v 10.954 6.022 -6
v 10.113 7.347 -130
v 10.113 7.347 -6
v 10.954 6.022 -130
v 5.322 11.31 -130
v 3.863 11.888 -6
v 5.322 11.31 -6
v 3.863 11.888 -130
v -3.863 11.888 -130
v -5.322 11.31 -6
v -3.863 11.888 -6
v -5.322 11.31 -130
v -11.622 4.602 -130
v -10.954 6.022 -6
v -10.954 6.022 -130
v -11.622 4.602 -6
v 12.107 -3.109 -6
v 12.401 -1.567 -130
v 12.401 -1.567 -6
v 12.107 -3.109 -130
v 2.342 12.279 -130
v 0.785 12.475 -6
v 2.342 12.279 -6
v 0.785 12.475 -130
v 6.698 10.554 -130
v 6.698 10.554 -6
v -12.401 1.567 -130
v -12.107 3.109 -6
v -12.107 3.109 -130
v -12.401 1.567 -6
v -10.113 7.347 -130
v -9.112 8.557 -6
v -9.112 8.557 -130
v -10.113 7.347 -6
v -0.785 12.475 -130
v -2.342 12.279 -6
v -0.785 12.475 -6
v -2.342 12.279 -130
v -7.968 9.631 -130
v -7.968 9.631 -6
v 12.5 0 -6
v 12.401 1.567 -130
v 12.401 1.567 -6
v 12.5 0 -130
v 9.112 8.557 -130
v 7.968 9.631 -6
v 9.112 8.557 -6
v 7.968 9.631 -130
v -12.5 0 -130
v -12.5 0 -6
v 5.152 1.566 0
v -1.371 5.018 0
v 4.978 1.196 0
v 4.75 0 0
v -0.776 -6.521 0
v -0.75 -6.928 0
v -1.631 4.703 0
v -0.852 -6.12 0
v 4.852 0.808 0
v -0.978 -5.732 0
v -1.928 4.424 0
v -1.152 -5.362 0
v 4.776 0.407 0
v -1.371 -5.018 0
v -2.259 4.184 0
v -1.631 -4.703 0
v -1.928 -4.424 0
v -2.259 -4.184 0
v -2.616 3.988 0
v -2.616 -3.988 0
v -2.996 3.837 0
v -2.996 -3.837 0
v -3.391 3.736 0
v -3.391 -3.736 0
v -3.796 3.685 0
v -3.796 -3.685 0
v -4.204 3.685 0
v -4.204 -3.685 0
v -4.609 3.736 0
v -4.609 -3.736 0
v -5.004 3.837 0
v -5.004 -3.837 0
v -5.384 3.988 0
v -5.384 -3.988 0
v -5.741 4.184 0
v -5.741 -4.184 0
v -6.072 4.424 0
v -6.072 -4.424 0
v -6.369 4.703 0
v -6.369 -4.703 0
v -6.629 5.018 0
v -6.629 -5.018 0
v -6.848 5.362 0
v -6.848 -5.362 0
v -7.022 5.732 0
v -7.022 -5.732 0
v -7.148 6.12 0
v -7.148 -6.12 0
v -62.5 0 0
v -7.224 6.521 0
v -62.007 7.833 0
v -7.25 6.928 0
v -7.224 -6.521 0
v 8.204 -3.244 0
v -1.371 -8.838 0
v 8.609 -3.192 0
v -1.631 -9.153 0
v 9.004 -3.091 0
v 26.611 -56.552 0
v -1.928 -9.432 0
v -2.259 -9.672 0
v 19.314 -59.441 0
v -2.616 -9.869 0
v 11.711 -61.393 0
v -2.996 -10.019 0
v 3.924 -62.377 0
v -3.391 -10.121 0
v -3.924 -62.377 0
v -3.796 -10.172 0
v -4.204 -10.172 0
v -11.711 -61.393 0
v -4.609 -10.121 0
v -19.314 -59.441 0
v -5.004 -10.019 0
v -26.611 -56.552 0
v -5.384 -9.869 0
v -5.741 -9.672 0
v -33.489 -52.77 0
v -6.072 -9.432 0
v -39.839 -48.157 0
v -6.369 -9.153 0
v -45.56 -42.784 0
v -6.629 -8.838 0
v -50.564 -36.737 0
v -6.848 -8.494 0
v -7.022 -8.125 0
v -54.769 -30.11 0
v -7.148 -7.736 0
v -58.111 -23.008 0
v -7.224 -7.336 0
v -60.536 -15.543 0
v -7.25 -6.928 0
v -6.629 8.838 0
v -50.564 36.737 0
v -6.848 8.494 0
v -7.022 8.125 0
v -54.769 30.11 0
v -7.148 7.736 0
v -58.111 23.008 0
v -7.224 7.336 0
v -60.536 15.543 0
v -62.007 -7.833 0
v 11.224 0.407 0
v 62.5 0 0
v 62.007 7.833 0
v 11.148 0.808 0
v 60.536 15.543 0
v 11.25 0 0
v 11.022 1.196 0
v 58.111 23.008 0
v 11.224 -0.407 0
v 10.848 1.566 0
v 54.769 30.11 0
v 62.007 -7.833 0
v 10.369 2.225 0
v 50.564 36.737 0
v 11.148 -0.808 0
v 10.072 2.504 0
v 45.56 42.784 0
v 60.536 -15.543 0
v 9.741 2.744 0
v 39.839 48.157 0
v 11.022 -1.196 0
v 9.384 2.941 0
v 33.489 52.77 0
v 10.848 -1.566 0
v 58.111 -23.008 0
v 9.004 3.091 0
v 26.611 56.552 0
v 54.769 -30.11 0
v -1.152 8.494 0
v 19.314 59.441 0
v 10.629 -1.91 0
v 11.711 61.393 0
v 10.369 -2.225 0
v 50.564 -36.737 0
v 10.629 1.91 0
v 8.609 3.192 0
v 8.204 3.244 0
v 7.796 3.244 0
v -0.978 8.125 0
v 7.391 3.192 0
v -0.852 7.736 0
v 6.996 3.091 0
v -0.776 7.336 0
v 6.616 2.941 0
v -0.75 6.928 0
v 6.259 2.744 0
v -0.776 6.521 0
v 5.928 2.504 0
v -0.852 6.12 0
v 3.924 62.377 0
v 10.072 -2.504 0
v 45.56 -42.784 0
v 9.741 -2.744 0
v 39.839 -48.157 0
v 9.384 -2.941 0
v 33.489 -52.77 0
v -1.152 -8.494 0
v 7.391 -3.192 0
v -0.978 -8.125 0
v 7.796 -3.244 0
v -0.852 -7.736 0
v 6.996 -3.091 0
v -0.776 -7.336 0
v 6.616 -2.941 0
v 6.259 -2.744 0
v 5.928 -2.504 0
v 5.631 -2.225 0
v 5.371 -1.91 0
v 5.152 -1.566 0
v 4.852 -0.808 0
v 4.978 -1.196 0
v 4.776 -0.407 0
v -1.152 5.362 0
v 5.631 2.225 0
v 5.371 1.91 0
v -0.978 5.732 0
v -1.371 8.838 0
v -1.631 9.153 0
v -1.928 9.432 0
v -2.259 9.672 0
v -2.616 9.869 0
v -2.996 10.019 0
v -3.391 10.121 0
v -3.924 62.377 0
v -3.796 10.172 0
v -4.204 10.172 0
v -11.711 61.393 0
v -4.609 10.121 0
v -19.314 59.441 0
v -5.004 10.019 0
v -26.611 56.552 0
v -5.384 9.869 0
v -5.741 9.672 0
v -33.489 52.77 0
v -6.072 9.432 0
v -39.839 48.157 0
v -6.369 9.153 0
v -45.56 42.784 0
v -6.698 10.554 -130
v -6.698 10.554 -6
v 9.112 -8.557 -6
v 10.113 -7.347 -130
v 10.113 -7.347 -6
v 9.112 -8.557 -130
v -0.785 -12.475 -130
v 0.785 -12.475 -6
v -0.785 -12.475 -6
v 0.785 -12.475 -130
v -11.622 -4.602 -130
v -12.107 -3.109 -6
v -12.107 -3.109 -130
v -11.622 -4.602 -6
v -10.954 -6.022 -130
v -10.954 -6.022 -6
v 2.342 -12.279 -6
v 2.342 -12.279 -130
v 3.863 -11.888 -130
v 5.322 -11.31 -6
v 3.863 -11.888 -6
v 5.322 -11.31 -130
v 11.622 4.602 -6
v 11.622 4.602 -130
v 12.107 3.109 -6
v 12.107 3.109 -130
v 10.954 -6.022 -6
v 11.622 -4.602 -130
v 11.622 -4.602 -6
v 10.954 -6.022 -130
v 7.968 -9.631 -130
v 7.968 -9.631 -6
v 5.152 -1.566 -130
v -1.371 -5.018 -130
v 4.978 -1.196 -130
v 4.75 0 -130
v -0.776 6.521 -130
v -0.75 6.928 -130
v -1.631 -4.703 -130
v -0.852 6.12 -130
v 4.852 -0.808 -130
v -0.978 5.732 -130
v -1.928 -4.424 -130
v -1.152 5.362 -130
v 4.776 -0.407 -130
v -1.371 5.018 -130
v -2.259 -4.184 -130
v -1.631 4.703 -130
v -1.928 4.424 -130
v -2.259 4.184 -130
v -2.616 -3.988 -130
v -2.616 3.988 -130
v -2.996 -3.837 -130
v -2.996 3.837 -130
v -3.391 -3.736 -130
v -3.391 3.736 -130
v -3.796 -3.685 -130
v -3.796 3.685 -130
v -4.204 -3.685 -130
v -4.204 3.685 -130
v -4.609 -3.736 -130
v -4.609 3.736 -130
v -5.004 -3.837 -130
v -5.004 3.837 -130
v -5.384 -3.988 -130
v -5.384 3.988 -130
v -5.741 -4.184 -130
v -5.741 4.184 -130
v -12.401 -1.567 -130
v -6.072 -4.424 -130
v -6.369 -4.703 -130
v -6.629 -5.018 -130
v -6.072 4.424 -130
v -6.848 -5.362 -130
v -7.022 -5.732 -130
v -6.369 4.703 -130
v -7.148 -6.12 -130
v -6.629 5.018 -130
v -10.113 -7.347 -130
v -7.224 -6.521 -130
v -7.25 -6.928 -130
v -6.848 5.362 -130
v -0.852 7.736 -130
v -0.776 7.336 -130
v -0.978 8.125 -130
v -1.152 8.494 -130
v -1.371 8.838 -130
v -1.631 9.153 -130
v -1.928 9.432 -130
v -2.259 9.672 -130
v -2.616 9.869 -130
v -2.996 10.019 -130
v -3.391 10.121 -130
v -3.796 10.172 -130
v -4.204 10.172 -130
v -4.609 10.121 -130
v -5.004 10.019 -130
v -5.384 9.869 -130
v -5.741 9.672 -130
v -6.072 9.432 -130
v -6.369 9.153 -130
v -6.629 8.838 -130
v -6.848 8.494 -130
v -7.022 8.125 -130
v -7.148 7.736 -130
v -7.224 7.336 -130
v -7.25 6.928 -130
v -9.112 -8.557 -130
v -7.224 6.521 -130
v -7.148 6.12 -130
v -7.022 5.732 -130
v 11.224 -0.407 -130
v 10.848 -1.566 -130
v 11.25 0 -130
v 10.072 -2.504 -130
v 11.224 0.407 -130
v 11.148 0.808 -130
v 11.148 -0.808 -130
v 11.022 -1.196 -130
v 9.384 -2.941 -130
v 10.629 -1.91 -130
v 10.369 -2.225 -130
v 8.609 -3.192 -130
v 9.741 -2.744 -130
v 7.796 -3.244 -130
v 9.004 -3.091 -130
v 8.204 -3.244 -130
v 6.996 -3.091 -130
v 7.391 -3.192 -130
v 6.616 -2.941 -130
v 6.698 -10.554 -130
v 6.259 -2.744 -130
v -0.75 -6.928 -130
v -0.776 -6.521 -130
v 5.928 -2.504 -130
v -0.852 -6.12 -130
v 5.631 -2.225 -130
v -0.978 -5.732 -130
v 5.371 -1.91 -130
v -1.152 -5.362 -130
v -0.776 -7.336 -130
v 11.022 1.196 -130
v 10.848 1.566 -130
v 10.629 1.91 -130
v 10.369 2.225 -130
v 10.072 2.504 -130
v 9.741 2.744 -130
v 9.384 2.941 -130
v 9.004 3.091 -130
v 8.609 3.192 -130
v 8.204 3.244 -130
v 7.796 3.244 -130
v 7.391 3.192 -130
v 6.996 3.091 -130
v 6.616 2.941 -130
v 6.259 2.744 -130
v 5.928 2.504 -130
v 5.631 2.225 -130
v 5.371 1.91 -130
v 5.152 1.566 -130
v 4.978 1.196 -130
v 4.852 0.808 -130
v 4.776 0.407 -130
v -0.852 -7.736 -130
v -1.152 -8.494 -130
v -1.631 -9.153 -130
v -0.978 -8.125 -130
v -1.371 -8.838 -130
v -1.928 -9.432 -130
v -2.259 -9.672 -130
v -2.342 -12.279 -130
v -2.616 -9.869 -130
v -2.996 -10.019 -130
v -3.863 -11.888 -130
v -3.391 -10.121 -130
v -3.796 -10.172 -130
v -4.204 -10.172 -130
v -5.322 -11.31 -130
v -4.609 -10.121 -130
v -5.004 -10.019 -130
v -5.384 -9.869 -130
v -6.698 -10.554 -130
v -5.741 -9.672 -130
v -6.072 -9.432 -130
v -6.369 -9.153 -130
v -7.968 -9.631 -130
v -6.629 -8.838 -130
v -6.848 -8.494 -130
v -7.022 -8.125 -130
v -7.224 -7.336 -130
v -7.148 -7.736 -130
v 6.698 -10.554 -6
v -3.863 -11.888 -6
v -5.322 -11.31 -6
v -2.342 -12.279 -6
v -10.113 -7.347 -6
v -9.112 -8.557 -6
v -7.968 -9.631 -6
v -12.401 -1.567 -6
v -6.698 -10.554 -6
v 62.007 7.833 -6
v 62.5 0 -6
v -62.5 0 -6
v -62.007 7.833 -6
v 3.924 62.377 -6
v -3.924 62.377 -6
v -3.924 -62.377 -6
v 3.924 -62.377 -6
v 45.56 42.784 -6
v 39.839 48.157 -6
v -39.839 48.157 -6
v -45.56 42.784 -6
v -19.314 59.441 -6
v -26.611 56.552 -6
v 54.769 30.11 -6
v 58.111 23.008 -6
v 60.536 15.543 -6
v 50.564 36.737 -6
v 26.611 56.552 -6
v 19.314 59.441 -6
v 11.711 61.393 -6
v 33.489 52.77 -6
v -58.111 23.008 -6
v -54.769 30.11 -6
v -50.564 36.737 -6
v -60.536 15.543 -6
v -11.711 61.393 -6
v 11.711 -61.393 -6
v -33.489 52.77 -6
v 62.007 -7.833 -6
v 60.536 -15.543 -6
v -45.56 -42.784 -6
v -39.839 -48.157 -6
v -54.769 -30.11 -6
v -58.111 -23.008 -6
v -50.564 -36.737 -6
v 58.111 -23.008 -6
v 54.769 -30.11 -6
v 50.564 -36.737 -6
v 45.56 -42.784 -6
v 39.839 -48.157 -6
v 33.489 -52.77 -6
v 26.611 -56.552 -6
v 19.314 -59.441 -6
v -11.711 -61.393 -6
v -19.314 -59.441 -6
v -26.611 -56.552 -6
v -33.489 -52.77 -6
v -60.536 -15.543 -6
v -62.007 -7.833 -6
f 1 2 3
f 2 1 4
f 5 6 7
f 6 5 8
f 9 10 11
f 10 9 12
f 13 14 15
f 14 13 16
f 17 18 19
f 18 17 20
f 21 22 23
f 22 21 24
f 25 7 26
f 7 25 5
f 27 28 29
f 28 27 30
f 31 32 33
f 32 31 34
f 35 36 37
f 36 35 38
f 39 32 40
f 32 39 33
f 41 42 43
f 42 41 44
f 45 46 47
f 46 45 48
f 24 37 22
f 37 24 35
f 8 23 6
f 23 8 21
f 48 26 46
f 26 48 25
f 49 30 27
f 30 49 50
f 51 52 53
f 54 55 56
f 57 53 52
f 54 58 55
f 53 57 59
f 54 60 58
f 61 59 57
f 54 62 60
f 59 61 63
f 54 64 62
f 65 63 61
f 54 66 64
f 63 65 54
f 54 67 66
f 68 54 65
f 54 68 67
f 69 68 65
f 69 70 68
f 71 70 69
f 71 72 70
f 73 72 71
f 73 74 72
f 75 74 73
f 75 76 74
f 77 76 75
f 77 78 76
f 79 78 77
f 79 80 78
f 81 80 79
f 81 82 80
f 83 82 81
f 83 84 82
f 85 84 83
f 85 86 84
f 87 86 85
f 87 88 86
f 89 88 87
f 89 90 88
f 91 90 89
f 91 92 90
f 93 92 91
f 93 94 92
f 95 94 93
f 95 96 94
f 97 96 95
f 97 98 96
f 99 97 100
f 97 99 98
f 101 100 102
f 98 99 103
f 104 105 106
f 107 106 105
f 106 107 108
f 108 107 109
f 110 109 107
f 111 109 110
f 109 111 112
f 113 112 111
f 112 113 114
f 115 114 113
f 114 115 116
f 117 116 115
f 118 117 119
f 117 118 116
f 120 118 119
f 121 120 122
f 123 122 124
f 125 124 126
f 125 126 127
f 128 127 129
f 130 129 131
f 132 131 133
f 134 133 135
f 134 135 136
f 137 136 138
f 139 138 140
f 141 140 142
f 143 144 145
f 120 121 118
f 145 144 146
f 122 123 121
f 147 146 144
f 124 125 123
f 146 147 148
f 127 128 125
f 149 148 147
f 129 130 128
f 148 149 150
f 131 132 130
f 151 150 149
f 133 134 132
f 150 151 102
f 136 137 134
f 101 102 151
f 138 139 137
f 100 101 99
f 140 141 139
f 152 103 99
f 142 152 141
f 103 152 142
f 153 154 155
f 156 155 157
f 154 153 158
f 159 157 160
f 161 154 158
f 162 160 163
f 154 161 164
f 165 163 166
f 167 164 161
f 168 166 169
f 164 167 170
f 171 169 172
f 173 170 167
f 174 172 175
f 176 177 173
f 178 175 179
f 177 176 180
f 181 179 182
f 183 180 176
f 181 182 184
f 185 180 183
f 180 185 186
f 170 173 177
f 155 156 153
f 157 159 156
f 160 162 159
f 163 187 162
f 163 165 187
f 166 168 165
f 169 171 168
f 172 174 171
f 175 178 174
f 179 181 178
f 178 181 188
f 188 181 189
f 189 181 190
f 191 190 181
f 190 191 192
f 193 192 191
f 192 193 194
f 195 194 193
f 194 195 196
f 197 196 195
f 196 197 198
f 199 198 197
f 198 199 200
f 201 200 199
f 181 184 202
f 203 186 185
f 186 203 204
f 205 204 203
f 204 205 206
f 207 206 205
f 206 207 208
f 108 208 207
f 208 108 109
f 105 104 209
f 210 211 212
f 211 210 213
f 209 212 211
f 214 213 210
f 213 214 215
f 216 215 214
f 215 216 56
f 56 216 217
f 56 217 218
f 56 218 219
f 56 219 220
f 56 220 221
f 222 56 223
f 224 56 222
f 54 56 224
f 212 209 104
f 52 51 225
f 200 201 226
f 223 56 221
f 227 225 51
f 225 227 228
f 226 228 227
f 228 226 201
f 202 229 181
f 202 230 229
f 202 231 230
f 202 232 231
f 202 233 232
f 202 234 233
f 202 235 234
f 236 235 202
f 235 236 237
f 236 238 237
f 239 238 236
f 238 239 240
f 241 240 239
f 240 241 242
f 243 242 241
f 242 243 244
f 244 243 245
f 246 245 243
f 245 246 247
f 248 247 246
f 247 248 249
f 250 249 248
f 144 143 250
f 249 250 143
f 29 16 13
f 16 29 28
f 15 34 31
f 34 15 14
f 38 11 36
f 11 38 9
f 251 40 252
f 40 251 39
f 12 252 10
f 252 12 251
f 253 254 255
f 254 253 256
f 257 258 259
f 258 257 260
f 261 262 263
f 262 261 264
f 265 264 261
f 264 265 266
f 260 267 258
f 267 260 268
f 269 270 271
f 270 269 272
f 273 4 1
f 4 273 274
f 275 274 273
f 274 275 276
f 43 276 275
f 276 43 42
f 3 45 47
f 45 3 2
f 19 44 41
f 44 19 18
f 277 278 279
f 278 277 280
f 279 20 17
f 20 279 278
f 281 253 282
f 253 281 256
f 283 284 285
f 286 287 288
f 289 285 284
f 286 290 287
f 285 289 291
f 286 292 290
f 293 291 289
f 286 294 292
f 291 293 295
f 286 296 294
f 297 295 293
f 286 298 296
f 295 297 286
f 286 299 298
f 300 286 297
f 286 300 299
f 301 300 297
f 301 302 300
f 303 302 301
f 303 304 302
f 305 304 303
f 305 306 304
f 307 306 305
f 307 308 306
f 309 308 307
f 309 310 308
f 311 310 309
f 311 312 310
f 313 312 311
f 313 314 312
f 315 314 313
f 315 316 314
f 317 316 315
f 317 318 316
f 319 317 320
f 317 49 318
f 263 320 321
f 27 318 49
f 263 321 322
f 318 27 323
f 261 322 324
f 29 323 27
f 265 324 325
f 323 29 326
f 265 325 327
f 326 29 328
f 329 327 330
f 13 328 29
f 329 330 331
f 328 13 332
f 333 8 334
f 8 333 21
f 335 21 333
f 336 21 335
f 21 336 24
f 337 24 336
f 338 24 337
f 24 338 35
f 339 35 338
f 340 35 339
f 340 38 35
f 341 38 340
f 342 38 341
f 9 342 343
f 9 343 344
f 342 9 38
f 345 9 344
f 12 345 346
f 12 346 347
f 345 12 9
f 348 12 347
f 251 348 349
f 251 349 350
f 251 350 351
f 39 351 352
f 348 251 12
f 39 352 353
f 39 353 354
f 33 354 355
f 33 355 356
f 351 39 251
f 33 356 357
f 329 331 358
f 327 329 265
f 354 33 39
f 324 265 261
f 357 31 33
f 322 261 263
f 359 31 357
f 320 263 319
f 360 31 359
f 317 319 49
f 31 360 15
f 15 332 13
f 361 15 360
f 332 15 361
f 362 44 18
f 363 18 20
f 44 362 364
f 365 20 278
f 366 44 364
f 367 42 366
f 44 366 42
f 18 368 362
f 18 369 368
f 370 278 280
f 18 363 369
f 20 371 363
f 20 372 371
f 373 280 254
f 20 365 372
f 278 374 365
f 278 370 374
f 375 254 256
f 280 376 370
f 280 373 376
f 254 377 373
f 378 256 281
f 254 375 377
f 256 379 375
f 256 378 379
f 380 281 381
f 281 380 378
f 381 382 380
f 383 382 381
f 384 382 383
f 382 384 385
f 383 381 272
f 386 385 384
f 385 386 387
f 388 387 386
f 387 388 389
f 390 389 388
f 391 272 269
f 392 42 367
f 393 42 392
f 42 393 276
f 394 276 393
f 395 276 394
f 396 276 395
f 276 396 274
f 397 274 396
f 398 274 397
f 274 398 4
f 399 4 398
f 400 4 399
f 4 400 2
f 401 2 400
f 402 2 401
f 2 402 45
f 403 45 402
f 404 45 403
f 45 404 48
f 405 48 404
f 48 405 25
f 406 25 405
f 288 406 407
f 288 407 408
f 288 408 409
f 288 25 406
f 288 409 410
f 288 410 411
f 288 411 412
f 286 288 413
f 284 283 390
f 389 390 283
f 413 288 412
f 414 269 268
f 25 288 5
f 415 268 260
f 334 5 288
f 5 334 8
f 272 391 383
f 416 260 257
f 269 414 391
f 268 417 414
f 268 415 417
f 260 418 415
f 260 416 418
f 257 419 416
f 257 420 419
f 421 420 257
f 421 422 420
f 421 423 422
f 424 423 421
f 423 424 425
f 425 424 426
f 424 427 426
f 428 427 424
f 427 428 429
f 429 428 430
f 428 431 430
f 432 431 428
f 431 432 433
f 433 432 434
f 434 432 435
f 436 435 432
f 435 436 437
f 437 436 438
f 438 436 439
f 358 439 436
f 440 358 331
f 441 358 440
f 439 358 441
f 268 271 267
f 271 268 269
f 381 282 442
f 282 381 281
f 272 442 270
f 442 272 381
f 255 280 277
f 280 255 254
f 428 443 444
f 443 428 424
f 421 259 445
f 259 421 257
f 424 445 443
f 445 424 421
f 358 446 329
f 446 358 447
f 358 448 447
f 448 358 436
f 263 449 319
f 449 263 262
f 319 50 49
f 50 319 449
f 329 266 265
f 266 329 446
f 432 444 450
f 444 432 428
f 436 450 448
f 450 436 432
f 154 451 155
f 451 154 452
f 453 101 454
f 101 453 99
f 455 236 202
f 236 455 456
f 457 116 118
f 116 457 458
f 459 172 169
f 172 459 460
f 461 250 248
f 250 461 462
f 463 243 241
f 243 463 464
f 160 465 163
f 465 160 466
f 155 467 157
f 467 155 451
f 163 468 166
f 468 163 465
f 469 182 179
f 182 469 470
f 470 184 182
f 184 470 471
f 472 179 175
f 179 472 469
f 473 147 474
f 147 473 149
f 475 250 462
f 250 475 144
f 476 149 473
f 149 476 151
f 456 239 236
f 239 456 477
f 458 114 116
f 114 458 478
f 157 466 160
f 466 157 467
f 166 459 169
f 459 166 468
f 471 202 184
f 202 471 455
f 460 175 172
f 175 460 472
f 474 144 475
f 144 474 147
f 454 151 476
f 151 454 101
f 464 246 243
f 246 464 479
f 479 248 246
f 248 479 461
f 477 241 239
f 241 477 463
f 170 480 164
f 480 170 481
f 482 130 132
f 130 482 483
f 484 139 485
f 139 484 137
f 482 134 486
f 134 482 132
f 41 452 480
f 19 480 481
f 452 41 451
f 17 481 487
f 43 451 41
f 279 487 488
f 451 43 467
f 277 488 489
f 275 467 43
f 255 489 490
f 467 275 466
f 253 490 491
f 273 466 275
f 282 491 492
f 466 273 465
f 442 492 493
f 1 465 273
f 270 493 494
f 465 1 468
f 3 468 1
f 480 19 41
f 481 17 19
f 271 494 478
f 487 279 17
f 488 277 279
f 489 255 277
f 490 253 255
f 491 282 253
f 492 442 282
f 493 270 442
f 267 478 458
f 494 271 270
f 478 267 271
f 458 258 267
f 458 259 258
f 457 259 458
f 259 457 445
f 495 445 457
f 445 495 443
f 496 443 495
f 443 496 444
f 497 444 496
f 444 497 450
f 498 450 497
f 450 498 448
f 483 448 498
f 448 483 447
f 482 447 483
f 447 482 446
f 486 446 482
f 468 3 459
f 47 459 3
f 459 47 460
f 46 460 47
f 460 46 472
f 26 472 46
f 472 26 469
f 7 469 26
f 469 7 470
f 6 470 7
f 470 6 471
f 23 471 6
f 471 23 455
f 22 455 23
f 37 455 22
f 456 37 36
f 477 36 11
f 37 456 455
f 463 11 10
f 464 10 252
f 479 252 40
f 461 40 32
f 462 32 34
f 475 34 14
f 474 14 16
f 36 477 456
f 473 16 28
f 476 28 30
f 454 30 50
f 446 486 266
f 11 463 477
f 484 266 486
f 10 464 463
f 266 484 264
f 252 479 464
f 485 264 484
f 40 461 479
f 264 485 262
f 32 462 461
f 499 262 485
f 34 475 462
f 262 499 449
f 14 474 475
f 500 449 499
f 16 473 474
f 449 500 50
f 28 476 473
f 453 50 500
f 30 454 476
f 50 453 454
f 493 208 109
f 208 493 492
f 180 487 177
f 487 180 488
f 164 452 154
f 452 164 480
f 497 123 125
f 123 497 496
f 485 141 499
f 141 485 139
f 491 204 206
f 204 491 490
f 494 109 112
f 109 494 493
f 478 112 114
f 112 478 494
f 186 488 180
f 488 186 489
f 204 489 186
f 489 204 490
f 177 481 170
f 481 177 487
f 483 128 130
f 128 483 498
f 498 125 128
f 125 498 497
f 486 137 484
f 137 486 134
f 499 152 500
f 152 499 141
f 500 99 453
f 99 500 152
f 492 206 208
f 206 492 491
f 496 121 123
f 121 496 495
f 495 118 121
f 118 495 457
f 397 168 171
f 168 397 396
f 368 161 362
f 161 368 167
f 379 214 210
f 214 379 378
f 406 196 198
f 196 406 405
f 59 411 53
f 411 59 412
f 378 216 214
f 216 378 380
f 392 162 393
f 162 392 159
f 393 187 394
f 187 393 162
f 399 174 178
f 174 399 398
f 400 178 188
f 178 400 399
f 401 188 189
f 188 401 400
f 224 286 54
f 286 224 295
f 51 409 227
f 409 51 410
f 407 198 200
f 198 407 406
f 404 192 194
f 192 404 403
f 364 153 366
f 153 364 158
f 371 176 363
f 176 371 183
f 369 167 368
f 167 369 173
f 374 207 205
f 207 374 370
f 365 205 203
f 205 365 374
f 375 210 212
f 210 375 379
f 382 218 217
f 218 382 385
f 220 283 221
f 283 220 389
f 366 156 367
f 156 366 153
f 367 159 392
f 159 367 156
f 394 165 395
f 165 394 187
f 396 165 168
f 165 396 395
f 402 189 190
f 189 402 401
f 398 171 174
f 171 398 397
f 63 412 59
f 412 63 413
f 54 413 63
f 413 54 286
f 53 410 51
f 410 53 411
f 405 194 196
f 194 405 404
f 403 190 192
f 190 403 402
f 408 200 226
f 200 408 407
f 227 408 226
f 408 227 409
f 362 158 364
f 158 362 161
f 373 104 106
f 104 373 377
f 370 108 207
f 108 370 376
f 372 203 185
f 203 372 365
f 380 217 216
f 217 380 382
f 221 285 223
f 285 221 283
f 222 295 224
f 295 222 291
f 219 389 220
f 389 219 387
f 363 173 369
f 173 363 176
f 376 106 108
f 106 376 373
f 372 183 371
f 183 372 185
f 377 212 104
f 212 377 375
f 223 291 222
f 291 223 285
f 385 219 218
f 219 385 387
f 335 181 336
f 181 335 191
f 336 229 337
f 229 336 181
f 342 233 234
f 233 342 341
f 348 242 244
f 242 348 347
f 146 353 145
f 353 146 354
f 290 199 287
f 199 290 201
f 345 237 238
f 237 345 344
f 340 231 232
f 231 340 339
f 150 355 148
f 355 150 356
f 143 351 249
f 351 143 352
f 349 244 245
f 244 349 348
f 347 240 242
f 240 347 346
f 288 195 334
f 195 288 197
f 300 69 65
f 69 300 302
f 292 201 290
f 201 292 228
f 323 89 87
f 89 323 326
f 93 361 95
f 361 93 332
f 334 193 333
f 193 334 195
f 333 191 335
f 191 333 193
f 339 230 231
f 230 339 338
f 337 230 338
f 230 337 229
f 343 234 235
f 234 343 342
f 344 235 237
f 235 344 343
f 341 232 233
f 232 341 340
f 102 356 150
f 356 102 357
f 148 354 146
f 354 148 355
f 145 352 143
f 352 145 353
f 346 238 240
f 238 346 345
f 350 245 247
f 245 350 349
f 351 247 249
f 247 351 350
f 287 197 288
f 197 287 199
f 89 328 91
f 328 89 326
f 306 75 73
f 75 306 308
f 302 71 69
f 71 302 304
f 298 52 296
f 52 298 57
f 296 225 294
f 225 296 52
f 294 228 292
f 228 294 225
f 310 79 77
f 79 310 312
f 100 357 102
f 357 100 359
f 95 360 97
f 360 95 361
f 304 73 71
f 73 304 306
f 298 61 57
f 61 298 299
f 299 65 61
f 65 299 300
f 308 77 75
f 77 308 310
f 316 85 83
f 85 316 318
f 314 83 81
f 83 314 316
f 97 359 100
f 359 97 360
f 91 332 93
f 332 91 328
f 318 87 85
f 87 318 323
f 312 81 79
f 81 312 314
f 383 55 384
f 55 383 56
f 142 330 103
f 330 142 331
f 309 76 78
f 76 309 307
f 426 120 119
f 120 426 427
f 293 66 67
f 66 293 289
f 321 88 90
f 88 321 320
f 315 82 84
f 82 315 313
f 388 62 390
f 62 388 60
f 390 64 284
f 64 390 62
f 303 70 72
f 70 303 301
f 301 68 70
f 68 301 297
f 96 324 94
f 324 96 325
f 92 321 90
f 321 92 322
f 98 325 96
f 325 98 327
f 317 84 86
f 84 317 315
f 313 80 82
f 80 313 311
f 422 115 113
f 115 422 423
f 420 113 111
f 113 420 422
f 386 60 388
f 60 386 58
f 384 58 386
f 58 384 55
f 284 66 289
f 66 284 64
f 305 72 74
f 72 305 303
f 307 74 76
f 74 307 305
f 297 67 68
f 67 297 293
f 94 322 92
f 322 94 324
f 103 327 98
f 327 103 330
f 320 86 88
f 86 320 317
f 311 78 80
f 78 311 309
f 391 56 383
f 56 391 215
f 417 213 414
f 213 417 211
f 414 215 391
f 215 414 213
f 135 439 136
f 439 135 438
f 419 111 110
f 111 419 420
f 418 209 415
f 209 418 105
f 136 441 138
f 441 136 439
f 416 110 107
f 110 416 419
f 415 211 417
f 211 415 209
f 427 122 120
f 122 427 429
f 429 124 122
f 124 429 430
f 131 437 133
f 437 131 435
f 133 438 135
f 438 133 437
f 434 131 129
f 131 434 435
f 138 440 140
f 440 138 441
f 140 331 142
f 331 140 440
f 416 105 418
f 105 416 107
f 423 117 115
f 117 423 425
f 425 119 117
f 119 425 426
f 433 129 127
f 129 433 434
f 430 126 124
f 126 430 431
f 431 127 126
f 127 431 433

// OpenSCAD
$fn = 50;


difference() {
	union() {
		translate(v = [0, 0, -130.0000000000]) {
			cylinder(h = 130, r = 12.5000000000);
		}
		translate(v = [0, 0, -6.0000000000]) {
			cylinder(h = 6, r = 62.5000000000);
		}
	}
	union() {
		#translate(v = [8.0000000000, 0.0000000000, -130]) {
			cylinder(h = 130, r = 3.2500000000);
		}
		#translate(v = [-4.0000000000, 6.9282032303, -130]) {
			cylinder(h = 130, r = 3.2500000000);
		}
		#translate(v = [-4.0000000000, -6.9282032303, -130]) {
			cylinder(h = 130, r = 3.2500000000);
		}
	}
}
